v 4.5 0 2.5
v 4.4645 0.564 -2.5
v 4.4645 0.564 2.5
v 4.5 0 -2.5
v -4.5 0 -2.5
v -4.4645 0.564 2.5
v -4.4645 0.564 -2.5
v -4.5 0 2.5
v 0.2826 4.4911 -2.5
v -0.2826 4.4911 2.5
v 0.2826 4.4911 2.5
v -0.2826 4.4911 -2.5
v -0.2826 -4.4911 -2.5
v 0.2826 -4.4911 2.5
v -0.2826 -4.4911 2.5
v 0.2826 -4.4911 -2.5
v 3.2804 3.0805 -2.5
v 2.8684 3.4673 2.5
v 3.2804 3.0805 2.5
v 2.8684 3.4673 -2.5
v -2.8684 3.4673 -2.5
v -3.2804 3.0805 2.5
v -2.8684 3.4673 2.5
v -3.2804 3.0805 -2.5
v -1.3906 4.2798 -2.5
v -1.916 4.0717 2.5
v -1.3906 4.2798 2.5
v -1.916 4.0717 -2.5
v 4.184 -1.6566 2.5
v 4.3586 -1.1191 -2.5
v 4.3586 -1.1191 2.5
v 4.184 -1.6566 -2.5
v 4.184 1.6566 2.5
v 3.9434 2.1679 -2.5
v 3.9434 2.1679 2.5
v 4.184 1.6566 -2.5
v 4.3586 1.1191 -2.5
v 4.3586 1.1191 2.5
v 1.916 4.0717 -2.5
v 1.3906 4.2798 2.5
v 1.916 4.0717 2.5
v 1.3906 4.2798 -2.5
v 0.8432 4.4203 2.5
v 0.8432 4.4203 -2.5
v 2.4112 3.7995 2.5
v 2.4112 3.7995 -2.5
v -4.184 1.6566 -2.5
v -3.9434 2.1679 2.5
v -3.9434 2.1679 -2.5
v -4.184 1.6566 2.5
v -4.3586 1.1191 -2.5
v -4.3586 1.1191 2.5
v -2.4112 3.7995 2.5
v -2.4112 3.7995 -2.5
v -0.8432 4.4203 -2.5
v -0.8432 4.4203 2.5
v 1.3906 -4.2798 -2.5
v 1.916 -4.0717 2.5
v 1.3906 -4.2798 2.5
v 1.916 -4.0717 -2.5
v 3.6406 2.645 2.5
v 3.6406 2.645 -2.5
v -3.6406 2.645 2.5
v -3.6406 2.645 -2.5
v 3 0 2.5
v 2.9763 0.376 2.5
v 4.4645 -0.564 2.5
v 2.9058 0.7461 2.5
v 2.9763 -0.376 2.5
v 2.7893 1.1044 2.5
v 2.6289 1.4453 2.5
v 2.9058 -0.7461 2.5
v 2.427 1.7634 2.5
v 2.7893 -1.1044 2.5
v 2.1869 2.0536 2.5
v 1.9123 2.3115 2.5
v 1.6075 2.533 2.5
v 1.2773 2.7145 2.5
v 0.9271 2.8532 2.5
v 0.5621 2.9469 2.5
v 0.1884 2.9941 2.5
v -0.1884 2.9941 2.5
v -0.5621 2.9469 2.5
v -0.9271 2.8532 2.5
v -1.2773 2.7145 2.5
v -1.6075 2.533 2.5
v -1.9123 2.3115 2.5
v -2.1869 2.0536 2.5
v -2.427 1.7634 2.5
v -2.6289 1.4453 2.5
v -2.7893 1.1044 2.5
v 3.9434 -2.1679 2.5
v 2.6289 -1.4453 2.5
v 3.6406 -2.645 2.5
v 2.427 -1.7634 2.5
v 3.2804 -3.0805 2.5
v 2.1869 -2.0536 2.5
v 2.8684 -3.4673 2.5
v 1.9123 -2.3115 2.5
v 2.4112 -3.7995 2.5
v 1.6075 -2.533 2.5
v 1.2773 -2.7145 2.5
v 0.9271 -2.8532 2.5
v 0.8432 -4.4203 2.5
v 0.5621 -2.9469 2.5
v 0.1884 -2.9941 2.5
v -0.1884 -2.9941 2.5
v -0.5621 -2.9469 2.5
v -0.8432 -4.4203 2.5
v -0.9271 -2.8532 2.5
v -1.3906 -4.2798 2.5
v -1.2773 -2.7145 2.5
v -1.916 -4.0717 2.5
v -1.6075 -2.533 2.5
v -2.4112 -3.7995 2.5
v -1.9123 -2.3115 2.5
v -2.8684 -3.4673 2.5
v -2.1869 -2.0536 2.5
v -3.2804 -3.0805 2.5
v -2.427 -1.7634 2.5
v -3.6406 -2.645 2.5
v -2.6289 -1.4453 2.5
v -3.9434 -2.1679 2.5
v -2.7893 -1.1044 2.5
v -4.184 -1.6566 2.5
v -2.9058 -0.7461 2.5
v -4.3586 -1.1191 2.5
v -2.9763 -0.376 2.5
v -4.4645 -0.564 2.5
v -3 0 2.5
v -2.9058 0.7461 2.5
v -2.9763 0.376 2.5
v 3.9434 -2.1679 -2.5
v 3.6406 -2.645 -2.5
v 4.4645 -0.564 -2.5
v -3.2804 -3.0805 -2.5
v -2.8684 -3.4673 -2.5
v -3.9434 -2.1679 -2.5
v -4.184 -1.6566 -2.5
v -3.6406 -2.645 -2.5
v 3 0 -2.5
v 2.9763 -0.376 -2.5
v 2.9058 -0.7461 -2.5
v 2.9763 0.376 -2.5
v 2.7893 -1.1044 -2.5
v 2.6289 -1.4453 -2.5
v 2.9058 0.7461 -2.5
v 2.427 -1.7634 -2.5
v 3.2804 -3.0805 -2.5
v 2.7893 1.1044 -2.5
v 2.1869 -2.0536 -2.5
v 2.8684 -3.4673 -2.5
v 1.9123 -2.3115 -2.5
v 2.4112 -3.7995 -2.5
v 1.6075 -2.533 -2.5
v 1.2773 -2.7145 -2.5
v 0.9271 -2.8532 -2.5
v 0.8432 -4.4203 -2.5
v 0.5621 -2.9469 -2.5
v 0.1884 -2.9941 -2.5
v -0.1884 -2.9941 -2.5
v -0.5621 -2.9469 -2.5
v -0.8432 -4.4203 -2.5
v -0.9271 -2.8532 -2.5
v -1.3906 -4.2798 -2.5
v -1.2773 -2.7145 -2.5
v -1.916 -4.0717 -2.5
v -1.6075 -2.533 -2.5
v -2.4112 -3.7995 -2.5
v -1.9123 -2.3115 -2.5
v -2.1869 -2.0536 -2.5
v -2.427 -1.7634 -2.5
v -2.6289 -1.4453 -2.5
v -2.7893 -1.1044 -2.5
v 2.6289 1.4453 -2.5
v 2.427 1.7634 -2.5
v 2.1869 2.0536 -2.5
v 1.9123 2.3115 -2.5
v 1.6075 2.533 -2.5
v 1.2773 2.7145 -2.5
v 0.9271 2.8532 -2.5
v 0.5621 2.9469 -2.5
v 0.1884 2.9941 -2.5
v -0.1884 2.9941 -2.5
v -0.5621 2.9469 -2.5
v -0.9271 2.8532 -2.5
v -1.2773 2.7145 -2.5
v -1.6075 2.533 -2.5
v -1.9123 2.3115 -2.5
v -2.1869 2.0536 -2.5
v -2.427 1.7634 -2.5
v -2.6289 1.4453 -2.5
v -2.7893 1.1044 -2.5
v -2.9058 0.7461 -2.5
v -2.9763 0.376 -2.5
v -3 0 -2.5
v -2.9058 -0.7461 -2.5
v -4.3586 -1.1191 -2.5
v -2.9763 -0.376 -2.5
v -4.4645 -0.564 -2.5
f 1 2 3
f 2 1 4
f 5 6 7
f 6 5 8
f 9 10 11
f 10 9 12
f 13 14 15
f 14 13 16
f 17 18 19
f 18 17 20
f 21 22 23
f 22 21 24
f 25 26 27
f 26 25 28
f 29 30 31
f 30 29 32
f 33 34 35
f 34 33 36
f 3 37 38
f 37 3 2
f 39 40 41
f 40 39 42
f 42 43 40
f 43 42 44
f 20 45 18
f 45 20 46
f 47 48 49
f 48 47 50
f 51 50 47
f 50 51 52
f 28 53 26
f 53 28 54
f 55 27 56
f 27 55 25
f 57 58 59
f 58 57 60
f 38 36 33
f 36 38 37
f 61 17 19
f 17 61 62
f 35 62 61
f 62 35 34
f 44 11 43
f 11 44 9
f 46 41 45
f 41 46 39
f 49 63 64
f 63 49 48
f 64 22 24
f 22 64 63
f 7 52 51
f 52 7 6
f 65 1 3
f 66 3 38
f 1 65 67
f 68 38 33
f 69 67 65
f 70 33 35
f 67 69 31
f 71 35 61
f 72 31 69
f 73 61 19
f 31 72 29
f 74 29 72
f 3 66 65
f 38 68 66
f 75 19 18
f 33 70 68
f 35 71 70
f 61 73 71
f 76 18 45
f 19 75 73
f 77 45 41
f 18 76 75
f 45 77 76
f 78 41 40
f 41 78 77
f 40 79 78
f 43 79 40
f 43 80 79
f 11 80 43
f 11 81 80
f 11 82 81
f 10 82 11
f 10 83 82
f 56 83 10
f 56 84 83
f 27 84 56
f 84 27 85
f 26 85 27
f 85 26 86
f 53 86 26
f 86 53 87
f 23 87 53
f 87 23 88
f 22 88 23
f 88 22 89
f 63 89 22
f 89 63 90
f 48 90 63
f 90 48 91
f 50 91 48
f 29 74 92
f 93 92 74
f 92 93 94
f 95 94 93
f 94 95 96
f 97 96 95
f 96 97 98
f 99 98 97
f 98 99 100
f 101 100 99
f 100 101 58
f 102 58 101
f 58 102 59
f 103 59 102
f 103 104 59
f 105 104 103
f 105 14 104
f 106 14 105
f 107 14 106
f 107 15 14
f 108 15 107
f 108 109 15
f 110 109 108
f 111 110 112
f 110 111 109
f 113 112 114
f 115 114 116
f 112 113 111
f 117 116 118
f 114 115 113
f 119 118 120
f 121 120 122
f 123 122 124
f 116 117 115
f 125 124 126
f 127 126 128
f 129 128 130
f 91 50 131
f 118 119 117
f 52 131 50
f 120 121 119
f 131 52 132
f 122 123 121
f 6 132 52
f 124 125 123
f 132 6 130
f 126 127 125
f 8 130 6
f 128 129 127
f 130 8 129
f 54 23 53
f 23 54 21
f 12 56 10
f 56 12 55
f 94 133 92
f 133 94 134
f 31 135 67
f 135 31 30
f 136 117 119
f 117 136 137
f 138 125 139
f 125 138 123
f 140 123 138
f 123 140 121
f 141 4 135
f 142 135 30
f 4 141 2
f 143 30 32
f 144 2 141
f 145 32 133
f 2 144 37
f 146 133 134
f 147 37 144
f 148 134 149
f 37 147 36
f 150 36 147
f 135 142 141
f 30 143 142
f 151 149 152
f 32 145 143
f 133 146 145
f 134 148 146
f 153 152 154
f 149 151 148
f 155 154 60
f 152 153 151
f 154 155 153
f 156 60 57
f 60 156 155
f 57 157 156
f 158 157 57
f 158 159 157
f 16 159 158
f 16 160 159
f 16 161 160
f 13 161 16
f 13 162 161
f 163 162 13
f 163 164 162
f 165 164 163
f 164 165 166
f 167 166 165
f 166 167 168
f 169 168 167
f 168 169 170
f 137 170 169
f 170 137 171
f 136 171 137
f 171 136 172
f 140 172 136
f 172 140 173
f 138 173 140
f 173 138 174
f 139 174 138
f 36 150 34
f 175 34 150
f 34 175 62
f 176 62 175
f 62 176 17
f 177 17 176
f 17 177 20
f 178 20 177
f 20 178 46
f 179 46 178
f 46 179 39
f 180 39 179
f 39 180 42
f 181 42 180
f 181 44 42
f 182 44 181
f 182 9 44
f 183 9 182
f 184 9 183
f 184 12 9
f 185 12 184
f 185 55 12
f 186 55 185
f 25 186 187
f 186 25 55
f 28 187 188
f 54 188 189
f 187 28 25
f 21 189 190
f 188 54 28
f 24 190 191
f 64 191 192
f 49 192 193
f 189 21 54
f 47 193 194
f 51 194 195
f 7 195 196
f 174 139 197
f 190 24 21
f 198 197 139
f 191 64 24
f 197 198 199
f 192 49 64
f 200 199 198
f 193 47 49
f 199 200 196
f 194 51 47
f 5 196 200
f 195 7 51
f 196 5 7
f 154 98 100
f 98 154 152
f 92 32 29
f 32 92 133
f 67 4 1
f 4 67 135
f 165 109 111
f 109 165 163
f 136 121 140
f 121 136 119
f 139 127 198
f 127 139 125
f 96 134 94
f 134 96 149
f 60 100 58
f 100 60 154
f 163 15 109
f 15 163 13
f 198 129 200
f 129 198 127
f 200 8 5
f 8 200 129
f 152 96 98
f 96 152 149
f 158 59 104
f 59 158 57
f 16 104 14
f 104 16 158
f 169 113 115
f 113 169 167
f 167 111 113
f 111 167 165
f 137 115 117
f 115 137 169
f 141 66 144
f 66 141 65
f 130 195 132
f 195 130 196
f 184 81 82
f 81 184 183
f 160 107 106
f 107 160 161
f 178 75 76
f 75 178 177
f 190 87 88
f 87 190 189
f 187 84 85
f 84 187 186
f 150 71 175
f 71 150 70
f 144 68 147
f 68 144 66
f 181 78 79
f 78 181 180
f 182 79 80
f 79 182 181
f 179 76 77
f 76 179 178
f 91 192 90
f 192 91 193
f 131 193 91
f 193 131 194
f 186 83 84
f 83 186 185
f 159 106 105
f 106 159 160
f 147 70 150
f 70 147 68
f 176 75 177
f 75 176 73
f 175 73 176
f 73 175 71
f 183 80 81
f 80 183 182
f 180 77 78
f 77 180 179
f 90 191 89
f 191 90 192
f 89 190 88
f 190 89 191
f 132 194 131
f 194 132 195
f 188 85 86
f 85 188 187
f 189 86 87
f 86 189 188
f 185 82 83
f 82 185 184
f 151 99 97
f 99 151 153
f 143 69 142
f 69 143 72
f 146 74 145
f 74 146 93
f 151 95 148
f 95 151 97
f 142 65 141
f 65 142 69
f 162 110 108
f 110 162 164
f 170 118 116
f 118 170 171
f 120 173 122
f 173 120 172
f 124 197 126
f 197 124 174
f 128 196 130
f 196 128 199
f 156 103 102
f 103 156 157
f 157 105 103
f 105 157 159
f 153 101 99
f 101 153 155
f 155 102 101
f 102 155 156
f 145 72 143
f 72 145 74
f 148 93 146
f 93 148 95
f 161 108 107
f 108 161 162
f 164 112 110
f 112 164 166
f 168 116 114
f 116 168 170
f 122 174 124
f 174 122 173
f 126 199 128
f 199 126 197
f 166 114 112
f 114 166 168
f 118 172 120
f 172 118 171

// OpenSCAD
$fn = 50;


difference() {
	union() {
		translate(v = [0, 0, -2.5000000000]) {
			cylinder(h = 5, r = 4.5000000000);
		}
	}
	union() {
		translate(v = [0, 0, -100.0000000000]) {
			cylinder(h = 200, r = 3);
		}
	}
}
